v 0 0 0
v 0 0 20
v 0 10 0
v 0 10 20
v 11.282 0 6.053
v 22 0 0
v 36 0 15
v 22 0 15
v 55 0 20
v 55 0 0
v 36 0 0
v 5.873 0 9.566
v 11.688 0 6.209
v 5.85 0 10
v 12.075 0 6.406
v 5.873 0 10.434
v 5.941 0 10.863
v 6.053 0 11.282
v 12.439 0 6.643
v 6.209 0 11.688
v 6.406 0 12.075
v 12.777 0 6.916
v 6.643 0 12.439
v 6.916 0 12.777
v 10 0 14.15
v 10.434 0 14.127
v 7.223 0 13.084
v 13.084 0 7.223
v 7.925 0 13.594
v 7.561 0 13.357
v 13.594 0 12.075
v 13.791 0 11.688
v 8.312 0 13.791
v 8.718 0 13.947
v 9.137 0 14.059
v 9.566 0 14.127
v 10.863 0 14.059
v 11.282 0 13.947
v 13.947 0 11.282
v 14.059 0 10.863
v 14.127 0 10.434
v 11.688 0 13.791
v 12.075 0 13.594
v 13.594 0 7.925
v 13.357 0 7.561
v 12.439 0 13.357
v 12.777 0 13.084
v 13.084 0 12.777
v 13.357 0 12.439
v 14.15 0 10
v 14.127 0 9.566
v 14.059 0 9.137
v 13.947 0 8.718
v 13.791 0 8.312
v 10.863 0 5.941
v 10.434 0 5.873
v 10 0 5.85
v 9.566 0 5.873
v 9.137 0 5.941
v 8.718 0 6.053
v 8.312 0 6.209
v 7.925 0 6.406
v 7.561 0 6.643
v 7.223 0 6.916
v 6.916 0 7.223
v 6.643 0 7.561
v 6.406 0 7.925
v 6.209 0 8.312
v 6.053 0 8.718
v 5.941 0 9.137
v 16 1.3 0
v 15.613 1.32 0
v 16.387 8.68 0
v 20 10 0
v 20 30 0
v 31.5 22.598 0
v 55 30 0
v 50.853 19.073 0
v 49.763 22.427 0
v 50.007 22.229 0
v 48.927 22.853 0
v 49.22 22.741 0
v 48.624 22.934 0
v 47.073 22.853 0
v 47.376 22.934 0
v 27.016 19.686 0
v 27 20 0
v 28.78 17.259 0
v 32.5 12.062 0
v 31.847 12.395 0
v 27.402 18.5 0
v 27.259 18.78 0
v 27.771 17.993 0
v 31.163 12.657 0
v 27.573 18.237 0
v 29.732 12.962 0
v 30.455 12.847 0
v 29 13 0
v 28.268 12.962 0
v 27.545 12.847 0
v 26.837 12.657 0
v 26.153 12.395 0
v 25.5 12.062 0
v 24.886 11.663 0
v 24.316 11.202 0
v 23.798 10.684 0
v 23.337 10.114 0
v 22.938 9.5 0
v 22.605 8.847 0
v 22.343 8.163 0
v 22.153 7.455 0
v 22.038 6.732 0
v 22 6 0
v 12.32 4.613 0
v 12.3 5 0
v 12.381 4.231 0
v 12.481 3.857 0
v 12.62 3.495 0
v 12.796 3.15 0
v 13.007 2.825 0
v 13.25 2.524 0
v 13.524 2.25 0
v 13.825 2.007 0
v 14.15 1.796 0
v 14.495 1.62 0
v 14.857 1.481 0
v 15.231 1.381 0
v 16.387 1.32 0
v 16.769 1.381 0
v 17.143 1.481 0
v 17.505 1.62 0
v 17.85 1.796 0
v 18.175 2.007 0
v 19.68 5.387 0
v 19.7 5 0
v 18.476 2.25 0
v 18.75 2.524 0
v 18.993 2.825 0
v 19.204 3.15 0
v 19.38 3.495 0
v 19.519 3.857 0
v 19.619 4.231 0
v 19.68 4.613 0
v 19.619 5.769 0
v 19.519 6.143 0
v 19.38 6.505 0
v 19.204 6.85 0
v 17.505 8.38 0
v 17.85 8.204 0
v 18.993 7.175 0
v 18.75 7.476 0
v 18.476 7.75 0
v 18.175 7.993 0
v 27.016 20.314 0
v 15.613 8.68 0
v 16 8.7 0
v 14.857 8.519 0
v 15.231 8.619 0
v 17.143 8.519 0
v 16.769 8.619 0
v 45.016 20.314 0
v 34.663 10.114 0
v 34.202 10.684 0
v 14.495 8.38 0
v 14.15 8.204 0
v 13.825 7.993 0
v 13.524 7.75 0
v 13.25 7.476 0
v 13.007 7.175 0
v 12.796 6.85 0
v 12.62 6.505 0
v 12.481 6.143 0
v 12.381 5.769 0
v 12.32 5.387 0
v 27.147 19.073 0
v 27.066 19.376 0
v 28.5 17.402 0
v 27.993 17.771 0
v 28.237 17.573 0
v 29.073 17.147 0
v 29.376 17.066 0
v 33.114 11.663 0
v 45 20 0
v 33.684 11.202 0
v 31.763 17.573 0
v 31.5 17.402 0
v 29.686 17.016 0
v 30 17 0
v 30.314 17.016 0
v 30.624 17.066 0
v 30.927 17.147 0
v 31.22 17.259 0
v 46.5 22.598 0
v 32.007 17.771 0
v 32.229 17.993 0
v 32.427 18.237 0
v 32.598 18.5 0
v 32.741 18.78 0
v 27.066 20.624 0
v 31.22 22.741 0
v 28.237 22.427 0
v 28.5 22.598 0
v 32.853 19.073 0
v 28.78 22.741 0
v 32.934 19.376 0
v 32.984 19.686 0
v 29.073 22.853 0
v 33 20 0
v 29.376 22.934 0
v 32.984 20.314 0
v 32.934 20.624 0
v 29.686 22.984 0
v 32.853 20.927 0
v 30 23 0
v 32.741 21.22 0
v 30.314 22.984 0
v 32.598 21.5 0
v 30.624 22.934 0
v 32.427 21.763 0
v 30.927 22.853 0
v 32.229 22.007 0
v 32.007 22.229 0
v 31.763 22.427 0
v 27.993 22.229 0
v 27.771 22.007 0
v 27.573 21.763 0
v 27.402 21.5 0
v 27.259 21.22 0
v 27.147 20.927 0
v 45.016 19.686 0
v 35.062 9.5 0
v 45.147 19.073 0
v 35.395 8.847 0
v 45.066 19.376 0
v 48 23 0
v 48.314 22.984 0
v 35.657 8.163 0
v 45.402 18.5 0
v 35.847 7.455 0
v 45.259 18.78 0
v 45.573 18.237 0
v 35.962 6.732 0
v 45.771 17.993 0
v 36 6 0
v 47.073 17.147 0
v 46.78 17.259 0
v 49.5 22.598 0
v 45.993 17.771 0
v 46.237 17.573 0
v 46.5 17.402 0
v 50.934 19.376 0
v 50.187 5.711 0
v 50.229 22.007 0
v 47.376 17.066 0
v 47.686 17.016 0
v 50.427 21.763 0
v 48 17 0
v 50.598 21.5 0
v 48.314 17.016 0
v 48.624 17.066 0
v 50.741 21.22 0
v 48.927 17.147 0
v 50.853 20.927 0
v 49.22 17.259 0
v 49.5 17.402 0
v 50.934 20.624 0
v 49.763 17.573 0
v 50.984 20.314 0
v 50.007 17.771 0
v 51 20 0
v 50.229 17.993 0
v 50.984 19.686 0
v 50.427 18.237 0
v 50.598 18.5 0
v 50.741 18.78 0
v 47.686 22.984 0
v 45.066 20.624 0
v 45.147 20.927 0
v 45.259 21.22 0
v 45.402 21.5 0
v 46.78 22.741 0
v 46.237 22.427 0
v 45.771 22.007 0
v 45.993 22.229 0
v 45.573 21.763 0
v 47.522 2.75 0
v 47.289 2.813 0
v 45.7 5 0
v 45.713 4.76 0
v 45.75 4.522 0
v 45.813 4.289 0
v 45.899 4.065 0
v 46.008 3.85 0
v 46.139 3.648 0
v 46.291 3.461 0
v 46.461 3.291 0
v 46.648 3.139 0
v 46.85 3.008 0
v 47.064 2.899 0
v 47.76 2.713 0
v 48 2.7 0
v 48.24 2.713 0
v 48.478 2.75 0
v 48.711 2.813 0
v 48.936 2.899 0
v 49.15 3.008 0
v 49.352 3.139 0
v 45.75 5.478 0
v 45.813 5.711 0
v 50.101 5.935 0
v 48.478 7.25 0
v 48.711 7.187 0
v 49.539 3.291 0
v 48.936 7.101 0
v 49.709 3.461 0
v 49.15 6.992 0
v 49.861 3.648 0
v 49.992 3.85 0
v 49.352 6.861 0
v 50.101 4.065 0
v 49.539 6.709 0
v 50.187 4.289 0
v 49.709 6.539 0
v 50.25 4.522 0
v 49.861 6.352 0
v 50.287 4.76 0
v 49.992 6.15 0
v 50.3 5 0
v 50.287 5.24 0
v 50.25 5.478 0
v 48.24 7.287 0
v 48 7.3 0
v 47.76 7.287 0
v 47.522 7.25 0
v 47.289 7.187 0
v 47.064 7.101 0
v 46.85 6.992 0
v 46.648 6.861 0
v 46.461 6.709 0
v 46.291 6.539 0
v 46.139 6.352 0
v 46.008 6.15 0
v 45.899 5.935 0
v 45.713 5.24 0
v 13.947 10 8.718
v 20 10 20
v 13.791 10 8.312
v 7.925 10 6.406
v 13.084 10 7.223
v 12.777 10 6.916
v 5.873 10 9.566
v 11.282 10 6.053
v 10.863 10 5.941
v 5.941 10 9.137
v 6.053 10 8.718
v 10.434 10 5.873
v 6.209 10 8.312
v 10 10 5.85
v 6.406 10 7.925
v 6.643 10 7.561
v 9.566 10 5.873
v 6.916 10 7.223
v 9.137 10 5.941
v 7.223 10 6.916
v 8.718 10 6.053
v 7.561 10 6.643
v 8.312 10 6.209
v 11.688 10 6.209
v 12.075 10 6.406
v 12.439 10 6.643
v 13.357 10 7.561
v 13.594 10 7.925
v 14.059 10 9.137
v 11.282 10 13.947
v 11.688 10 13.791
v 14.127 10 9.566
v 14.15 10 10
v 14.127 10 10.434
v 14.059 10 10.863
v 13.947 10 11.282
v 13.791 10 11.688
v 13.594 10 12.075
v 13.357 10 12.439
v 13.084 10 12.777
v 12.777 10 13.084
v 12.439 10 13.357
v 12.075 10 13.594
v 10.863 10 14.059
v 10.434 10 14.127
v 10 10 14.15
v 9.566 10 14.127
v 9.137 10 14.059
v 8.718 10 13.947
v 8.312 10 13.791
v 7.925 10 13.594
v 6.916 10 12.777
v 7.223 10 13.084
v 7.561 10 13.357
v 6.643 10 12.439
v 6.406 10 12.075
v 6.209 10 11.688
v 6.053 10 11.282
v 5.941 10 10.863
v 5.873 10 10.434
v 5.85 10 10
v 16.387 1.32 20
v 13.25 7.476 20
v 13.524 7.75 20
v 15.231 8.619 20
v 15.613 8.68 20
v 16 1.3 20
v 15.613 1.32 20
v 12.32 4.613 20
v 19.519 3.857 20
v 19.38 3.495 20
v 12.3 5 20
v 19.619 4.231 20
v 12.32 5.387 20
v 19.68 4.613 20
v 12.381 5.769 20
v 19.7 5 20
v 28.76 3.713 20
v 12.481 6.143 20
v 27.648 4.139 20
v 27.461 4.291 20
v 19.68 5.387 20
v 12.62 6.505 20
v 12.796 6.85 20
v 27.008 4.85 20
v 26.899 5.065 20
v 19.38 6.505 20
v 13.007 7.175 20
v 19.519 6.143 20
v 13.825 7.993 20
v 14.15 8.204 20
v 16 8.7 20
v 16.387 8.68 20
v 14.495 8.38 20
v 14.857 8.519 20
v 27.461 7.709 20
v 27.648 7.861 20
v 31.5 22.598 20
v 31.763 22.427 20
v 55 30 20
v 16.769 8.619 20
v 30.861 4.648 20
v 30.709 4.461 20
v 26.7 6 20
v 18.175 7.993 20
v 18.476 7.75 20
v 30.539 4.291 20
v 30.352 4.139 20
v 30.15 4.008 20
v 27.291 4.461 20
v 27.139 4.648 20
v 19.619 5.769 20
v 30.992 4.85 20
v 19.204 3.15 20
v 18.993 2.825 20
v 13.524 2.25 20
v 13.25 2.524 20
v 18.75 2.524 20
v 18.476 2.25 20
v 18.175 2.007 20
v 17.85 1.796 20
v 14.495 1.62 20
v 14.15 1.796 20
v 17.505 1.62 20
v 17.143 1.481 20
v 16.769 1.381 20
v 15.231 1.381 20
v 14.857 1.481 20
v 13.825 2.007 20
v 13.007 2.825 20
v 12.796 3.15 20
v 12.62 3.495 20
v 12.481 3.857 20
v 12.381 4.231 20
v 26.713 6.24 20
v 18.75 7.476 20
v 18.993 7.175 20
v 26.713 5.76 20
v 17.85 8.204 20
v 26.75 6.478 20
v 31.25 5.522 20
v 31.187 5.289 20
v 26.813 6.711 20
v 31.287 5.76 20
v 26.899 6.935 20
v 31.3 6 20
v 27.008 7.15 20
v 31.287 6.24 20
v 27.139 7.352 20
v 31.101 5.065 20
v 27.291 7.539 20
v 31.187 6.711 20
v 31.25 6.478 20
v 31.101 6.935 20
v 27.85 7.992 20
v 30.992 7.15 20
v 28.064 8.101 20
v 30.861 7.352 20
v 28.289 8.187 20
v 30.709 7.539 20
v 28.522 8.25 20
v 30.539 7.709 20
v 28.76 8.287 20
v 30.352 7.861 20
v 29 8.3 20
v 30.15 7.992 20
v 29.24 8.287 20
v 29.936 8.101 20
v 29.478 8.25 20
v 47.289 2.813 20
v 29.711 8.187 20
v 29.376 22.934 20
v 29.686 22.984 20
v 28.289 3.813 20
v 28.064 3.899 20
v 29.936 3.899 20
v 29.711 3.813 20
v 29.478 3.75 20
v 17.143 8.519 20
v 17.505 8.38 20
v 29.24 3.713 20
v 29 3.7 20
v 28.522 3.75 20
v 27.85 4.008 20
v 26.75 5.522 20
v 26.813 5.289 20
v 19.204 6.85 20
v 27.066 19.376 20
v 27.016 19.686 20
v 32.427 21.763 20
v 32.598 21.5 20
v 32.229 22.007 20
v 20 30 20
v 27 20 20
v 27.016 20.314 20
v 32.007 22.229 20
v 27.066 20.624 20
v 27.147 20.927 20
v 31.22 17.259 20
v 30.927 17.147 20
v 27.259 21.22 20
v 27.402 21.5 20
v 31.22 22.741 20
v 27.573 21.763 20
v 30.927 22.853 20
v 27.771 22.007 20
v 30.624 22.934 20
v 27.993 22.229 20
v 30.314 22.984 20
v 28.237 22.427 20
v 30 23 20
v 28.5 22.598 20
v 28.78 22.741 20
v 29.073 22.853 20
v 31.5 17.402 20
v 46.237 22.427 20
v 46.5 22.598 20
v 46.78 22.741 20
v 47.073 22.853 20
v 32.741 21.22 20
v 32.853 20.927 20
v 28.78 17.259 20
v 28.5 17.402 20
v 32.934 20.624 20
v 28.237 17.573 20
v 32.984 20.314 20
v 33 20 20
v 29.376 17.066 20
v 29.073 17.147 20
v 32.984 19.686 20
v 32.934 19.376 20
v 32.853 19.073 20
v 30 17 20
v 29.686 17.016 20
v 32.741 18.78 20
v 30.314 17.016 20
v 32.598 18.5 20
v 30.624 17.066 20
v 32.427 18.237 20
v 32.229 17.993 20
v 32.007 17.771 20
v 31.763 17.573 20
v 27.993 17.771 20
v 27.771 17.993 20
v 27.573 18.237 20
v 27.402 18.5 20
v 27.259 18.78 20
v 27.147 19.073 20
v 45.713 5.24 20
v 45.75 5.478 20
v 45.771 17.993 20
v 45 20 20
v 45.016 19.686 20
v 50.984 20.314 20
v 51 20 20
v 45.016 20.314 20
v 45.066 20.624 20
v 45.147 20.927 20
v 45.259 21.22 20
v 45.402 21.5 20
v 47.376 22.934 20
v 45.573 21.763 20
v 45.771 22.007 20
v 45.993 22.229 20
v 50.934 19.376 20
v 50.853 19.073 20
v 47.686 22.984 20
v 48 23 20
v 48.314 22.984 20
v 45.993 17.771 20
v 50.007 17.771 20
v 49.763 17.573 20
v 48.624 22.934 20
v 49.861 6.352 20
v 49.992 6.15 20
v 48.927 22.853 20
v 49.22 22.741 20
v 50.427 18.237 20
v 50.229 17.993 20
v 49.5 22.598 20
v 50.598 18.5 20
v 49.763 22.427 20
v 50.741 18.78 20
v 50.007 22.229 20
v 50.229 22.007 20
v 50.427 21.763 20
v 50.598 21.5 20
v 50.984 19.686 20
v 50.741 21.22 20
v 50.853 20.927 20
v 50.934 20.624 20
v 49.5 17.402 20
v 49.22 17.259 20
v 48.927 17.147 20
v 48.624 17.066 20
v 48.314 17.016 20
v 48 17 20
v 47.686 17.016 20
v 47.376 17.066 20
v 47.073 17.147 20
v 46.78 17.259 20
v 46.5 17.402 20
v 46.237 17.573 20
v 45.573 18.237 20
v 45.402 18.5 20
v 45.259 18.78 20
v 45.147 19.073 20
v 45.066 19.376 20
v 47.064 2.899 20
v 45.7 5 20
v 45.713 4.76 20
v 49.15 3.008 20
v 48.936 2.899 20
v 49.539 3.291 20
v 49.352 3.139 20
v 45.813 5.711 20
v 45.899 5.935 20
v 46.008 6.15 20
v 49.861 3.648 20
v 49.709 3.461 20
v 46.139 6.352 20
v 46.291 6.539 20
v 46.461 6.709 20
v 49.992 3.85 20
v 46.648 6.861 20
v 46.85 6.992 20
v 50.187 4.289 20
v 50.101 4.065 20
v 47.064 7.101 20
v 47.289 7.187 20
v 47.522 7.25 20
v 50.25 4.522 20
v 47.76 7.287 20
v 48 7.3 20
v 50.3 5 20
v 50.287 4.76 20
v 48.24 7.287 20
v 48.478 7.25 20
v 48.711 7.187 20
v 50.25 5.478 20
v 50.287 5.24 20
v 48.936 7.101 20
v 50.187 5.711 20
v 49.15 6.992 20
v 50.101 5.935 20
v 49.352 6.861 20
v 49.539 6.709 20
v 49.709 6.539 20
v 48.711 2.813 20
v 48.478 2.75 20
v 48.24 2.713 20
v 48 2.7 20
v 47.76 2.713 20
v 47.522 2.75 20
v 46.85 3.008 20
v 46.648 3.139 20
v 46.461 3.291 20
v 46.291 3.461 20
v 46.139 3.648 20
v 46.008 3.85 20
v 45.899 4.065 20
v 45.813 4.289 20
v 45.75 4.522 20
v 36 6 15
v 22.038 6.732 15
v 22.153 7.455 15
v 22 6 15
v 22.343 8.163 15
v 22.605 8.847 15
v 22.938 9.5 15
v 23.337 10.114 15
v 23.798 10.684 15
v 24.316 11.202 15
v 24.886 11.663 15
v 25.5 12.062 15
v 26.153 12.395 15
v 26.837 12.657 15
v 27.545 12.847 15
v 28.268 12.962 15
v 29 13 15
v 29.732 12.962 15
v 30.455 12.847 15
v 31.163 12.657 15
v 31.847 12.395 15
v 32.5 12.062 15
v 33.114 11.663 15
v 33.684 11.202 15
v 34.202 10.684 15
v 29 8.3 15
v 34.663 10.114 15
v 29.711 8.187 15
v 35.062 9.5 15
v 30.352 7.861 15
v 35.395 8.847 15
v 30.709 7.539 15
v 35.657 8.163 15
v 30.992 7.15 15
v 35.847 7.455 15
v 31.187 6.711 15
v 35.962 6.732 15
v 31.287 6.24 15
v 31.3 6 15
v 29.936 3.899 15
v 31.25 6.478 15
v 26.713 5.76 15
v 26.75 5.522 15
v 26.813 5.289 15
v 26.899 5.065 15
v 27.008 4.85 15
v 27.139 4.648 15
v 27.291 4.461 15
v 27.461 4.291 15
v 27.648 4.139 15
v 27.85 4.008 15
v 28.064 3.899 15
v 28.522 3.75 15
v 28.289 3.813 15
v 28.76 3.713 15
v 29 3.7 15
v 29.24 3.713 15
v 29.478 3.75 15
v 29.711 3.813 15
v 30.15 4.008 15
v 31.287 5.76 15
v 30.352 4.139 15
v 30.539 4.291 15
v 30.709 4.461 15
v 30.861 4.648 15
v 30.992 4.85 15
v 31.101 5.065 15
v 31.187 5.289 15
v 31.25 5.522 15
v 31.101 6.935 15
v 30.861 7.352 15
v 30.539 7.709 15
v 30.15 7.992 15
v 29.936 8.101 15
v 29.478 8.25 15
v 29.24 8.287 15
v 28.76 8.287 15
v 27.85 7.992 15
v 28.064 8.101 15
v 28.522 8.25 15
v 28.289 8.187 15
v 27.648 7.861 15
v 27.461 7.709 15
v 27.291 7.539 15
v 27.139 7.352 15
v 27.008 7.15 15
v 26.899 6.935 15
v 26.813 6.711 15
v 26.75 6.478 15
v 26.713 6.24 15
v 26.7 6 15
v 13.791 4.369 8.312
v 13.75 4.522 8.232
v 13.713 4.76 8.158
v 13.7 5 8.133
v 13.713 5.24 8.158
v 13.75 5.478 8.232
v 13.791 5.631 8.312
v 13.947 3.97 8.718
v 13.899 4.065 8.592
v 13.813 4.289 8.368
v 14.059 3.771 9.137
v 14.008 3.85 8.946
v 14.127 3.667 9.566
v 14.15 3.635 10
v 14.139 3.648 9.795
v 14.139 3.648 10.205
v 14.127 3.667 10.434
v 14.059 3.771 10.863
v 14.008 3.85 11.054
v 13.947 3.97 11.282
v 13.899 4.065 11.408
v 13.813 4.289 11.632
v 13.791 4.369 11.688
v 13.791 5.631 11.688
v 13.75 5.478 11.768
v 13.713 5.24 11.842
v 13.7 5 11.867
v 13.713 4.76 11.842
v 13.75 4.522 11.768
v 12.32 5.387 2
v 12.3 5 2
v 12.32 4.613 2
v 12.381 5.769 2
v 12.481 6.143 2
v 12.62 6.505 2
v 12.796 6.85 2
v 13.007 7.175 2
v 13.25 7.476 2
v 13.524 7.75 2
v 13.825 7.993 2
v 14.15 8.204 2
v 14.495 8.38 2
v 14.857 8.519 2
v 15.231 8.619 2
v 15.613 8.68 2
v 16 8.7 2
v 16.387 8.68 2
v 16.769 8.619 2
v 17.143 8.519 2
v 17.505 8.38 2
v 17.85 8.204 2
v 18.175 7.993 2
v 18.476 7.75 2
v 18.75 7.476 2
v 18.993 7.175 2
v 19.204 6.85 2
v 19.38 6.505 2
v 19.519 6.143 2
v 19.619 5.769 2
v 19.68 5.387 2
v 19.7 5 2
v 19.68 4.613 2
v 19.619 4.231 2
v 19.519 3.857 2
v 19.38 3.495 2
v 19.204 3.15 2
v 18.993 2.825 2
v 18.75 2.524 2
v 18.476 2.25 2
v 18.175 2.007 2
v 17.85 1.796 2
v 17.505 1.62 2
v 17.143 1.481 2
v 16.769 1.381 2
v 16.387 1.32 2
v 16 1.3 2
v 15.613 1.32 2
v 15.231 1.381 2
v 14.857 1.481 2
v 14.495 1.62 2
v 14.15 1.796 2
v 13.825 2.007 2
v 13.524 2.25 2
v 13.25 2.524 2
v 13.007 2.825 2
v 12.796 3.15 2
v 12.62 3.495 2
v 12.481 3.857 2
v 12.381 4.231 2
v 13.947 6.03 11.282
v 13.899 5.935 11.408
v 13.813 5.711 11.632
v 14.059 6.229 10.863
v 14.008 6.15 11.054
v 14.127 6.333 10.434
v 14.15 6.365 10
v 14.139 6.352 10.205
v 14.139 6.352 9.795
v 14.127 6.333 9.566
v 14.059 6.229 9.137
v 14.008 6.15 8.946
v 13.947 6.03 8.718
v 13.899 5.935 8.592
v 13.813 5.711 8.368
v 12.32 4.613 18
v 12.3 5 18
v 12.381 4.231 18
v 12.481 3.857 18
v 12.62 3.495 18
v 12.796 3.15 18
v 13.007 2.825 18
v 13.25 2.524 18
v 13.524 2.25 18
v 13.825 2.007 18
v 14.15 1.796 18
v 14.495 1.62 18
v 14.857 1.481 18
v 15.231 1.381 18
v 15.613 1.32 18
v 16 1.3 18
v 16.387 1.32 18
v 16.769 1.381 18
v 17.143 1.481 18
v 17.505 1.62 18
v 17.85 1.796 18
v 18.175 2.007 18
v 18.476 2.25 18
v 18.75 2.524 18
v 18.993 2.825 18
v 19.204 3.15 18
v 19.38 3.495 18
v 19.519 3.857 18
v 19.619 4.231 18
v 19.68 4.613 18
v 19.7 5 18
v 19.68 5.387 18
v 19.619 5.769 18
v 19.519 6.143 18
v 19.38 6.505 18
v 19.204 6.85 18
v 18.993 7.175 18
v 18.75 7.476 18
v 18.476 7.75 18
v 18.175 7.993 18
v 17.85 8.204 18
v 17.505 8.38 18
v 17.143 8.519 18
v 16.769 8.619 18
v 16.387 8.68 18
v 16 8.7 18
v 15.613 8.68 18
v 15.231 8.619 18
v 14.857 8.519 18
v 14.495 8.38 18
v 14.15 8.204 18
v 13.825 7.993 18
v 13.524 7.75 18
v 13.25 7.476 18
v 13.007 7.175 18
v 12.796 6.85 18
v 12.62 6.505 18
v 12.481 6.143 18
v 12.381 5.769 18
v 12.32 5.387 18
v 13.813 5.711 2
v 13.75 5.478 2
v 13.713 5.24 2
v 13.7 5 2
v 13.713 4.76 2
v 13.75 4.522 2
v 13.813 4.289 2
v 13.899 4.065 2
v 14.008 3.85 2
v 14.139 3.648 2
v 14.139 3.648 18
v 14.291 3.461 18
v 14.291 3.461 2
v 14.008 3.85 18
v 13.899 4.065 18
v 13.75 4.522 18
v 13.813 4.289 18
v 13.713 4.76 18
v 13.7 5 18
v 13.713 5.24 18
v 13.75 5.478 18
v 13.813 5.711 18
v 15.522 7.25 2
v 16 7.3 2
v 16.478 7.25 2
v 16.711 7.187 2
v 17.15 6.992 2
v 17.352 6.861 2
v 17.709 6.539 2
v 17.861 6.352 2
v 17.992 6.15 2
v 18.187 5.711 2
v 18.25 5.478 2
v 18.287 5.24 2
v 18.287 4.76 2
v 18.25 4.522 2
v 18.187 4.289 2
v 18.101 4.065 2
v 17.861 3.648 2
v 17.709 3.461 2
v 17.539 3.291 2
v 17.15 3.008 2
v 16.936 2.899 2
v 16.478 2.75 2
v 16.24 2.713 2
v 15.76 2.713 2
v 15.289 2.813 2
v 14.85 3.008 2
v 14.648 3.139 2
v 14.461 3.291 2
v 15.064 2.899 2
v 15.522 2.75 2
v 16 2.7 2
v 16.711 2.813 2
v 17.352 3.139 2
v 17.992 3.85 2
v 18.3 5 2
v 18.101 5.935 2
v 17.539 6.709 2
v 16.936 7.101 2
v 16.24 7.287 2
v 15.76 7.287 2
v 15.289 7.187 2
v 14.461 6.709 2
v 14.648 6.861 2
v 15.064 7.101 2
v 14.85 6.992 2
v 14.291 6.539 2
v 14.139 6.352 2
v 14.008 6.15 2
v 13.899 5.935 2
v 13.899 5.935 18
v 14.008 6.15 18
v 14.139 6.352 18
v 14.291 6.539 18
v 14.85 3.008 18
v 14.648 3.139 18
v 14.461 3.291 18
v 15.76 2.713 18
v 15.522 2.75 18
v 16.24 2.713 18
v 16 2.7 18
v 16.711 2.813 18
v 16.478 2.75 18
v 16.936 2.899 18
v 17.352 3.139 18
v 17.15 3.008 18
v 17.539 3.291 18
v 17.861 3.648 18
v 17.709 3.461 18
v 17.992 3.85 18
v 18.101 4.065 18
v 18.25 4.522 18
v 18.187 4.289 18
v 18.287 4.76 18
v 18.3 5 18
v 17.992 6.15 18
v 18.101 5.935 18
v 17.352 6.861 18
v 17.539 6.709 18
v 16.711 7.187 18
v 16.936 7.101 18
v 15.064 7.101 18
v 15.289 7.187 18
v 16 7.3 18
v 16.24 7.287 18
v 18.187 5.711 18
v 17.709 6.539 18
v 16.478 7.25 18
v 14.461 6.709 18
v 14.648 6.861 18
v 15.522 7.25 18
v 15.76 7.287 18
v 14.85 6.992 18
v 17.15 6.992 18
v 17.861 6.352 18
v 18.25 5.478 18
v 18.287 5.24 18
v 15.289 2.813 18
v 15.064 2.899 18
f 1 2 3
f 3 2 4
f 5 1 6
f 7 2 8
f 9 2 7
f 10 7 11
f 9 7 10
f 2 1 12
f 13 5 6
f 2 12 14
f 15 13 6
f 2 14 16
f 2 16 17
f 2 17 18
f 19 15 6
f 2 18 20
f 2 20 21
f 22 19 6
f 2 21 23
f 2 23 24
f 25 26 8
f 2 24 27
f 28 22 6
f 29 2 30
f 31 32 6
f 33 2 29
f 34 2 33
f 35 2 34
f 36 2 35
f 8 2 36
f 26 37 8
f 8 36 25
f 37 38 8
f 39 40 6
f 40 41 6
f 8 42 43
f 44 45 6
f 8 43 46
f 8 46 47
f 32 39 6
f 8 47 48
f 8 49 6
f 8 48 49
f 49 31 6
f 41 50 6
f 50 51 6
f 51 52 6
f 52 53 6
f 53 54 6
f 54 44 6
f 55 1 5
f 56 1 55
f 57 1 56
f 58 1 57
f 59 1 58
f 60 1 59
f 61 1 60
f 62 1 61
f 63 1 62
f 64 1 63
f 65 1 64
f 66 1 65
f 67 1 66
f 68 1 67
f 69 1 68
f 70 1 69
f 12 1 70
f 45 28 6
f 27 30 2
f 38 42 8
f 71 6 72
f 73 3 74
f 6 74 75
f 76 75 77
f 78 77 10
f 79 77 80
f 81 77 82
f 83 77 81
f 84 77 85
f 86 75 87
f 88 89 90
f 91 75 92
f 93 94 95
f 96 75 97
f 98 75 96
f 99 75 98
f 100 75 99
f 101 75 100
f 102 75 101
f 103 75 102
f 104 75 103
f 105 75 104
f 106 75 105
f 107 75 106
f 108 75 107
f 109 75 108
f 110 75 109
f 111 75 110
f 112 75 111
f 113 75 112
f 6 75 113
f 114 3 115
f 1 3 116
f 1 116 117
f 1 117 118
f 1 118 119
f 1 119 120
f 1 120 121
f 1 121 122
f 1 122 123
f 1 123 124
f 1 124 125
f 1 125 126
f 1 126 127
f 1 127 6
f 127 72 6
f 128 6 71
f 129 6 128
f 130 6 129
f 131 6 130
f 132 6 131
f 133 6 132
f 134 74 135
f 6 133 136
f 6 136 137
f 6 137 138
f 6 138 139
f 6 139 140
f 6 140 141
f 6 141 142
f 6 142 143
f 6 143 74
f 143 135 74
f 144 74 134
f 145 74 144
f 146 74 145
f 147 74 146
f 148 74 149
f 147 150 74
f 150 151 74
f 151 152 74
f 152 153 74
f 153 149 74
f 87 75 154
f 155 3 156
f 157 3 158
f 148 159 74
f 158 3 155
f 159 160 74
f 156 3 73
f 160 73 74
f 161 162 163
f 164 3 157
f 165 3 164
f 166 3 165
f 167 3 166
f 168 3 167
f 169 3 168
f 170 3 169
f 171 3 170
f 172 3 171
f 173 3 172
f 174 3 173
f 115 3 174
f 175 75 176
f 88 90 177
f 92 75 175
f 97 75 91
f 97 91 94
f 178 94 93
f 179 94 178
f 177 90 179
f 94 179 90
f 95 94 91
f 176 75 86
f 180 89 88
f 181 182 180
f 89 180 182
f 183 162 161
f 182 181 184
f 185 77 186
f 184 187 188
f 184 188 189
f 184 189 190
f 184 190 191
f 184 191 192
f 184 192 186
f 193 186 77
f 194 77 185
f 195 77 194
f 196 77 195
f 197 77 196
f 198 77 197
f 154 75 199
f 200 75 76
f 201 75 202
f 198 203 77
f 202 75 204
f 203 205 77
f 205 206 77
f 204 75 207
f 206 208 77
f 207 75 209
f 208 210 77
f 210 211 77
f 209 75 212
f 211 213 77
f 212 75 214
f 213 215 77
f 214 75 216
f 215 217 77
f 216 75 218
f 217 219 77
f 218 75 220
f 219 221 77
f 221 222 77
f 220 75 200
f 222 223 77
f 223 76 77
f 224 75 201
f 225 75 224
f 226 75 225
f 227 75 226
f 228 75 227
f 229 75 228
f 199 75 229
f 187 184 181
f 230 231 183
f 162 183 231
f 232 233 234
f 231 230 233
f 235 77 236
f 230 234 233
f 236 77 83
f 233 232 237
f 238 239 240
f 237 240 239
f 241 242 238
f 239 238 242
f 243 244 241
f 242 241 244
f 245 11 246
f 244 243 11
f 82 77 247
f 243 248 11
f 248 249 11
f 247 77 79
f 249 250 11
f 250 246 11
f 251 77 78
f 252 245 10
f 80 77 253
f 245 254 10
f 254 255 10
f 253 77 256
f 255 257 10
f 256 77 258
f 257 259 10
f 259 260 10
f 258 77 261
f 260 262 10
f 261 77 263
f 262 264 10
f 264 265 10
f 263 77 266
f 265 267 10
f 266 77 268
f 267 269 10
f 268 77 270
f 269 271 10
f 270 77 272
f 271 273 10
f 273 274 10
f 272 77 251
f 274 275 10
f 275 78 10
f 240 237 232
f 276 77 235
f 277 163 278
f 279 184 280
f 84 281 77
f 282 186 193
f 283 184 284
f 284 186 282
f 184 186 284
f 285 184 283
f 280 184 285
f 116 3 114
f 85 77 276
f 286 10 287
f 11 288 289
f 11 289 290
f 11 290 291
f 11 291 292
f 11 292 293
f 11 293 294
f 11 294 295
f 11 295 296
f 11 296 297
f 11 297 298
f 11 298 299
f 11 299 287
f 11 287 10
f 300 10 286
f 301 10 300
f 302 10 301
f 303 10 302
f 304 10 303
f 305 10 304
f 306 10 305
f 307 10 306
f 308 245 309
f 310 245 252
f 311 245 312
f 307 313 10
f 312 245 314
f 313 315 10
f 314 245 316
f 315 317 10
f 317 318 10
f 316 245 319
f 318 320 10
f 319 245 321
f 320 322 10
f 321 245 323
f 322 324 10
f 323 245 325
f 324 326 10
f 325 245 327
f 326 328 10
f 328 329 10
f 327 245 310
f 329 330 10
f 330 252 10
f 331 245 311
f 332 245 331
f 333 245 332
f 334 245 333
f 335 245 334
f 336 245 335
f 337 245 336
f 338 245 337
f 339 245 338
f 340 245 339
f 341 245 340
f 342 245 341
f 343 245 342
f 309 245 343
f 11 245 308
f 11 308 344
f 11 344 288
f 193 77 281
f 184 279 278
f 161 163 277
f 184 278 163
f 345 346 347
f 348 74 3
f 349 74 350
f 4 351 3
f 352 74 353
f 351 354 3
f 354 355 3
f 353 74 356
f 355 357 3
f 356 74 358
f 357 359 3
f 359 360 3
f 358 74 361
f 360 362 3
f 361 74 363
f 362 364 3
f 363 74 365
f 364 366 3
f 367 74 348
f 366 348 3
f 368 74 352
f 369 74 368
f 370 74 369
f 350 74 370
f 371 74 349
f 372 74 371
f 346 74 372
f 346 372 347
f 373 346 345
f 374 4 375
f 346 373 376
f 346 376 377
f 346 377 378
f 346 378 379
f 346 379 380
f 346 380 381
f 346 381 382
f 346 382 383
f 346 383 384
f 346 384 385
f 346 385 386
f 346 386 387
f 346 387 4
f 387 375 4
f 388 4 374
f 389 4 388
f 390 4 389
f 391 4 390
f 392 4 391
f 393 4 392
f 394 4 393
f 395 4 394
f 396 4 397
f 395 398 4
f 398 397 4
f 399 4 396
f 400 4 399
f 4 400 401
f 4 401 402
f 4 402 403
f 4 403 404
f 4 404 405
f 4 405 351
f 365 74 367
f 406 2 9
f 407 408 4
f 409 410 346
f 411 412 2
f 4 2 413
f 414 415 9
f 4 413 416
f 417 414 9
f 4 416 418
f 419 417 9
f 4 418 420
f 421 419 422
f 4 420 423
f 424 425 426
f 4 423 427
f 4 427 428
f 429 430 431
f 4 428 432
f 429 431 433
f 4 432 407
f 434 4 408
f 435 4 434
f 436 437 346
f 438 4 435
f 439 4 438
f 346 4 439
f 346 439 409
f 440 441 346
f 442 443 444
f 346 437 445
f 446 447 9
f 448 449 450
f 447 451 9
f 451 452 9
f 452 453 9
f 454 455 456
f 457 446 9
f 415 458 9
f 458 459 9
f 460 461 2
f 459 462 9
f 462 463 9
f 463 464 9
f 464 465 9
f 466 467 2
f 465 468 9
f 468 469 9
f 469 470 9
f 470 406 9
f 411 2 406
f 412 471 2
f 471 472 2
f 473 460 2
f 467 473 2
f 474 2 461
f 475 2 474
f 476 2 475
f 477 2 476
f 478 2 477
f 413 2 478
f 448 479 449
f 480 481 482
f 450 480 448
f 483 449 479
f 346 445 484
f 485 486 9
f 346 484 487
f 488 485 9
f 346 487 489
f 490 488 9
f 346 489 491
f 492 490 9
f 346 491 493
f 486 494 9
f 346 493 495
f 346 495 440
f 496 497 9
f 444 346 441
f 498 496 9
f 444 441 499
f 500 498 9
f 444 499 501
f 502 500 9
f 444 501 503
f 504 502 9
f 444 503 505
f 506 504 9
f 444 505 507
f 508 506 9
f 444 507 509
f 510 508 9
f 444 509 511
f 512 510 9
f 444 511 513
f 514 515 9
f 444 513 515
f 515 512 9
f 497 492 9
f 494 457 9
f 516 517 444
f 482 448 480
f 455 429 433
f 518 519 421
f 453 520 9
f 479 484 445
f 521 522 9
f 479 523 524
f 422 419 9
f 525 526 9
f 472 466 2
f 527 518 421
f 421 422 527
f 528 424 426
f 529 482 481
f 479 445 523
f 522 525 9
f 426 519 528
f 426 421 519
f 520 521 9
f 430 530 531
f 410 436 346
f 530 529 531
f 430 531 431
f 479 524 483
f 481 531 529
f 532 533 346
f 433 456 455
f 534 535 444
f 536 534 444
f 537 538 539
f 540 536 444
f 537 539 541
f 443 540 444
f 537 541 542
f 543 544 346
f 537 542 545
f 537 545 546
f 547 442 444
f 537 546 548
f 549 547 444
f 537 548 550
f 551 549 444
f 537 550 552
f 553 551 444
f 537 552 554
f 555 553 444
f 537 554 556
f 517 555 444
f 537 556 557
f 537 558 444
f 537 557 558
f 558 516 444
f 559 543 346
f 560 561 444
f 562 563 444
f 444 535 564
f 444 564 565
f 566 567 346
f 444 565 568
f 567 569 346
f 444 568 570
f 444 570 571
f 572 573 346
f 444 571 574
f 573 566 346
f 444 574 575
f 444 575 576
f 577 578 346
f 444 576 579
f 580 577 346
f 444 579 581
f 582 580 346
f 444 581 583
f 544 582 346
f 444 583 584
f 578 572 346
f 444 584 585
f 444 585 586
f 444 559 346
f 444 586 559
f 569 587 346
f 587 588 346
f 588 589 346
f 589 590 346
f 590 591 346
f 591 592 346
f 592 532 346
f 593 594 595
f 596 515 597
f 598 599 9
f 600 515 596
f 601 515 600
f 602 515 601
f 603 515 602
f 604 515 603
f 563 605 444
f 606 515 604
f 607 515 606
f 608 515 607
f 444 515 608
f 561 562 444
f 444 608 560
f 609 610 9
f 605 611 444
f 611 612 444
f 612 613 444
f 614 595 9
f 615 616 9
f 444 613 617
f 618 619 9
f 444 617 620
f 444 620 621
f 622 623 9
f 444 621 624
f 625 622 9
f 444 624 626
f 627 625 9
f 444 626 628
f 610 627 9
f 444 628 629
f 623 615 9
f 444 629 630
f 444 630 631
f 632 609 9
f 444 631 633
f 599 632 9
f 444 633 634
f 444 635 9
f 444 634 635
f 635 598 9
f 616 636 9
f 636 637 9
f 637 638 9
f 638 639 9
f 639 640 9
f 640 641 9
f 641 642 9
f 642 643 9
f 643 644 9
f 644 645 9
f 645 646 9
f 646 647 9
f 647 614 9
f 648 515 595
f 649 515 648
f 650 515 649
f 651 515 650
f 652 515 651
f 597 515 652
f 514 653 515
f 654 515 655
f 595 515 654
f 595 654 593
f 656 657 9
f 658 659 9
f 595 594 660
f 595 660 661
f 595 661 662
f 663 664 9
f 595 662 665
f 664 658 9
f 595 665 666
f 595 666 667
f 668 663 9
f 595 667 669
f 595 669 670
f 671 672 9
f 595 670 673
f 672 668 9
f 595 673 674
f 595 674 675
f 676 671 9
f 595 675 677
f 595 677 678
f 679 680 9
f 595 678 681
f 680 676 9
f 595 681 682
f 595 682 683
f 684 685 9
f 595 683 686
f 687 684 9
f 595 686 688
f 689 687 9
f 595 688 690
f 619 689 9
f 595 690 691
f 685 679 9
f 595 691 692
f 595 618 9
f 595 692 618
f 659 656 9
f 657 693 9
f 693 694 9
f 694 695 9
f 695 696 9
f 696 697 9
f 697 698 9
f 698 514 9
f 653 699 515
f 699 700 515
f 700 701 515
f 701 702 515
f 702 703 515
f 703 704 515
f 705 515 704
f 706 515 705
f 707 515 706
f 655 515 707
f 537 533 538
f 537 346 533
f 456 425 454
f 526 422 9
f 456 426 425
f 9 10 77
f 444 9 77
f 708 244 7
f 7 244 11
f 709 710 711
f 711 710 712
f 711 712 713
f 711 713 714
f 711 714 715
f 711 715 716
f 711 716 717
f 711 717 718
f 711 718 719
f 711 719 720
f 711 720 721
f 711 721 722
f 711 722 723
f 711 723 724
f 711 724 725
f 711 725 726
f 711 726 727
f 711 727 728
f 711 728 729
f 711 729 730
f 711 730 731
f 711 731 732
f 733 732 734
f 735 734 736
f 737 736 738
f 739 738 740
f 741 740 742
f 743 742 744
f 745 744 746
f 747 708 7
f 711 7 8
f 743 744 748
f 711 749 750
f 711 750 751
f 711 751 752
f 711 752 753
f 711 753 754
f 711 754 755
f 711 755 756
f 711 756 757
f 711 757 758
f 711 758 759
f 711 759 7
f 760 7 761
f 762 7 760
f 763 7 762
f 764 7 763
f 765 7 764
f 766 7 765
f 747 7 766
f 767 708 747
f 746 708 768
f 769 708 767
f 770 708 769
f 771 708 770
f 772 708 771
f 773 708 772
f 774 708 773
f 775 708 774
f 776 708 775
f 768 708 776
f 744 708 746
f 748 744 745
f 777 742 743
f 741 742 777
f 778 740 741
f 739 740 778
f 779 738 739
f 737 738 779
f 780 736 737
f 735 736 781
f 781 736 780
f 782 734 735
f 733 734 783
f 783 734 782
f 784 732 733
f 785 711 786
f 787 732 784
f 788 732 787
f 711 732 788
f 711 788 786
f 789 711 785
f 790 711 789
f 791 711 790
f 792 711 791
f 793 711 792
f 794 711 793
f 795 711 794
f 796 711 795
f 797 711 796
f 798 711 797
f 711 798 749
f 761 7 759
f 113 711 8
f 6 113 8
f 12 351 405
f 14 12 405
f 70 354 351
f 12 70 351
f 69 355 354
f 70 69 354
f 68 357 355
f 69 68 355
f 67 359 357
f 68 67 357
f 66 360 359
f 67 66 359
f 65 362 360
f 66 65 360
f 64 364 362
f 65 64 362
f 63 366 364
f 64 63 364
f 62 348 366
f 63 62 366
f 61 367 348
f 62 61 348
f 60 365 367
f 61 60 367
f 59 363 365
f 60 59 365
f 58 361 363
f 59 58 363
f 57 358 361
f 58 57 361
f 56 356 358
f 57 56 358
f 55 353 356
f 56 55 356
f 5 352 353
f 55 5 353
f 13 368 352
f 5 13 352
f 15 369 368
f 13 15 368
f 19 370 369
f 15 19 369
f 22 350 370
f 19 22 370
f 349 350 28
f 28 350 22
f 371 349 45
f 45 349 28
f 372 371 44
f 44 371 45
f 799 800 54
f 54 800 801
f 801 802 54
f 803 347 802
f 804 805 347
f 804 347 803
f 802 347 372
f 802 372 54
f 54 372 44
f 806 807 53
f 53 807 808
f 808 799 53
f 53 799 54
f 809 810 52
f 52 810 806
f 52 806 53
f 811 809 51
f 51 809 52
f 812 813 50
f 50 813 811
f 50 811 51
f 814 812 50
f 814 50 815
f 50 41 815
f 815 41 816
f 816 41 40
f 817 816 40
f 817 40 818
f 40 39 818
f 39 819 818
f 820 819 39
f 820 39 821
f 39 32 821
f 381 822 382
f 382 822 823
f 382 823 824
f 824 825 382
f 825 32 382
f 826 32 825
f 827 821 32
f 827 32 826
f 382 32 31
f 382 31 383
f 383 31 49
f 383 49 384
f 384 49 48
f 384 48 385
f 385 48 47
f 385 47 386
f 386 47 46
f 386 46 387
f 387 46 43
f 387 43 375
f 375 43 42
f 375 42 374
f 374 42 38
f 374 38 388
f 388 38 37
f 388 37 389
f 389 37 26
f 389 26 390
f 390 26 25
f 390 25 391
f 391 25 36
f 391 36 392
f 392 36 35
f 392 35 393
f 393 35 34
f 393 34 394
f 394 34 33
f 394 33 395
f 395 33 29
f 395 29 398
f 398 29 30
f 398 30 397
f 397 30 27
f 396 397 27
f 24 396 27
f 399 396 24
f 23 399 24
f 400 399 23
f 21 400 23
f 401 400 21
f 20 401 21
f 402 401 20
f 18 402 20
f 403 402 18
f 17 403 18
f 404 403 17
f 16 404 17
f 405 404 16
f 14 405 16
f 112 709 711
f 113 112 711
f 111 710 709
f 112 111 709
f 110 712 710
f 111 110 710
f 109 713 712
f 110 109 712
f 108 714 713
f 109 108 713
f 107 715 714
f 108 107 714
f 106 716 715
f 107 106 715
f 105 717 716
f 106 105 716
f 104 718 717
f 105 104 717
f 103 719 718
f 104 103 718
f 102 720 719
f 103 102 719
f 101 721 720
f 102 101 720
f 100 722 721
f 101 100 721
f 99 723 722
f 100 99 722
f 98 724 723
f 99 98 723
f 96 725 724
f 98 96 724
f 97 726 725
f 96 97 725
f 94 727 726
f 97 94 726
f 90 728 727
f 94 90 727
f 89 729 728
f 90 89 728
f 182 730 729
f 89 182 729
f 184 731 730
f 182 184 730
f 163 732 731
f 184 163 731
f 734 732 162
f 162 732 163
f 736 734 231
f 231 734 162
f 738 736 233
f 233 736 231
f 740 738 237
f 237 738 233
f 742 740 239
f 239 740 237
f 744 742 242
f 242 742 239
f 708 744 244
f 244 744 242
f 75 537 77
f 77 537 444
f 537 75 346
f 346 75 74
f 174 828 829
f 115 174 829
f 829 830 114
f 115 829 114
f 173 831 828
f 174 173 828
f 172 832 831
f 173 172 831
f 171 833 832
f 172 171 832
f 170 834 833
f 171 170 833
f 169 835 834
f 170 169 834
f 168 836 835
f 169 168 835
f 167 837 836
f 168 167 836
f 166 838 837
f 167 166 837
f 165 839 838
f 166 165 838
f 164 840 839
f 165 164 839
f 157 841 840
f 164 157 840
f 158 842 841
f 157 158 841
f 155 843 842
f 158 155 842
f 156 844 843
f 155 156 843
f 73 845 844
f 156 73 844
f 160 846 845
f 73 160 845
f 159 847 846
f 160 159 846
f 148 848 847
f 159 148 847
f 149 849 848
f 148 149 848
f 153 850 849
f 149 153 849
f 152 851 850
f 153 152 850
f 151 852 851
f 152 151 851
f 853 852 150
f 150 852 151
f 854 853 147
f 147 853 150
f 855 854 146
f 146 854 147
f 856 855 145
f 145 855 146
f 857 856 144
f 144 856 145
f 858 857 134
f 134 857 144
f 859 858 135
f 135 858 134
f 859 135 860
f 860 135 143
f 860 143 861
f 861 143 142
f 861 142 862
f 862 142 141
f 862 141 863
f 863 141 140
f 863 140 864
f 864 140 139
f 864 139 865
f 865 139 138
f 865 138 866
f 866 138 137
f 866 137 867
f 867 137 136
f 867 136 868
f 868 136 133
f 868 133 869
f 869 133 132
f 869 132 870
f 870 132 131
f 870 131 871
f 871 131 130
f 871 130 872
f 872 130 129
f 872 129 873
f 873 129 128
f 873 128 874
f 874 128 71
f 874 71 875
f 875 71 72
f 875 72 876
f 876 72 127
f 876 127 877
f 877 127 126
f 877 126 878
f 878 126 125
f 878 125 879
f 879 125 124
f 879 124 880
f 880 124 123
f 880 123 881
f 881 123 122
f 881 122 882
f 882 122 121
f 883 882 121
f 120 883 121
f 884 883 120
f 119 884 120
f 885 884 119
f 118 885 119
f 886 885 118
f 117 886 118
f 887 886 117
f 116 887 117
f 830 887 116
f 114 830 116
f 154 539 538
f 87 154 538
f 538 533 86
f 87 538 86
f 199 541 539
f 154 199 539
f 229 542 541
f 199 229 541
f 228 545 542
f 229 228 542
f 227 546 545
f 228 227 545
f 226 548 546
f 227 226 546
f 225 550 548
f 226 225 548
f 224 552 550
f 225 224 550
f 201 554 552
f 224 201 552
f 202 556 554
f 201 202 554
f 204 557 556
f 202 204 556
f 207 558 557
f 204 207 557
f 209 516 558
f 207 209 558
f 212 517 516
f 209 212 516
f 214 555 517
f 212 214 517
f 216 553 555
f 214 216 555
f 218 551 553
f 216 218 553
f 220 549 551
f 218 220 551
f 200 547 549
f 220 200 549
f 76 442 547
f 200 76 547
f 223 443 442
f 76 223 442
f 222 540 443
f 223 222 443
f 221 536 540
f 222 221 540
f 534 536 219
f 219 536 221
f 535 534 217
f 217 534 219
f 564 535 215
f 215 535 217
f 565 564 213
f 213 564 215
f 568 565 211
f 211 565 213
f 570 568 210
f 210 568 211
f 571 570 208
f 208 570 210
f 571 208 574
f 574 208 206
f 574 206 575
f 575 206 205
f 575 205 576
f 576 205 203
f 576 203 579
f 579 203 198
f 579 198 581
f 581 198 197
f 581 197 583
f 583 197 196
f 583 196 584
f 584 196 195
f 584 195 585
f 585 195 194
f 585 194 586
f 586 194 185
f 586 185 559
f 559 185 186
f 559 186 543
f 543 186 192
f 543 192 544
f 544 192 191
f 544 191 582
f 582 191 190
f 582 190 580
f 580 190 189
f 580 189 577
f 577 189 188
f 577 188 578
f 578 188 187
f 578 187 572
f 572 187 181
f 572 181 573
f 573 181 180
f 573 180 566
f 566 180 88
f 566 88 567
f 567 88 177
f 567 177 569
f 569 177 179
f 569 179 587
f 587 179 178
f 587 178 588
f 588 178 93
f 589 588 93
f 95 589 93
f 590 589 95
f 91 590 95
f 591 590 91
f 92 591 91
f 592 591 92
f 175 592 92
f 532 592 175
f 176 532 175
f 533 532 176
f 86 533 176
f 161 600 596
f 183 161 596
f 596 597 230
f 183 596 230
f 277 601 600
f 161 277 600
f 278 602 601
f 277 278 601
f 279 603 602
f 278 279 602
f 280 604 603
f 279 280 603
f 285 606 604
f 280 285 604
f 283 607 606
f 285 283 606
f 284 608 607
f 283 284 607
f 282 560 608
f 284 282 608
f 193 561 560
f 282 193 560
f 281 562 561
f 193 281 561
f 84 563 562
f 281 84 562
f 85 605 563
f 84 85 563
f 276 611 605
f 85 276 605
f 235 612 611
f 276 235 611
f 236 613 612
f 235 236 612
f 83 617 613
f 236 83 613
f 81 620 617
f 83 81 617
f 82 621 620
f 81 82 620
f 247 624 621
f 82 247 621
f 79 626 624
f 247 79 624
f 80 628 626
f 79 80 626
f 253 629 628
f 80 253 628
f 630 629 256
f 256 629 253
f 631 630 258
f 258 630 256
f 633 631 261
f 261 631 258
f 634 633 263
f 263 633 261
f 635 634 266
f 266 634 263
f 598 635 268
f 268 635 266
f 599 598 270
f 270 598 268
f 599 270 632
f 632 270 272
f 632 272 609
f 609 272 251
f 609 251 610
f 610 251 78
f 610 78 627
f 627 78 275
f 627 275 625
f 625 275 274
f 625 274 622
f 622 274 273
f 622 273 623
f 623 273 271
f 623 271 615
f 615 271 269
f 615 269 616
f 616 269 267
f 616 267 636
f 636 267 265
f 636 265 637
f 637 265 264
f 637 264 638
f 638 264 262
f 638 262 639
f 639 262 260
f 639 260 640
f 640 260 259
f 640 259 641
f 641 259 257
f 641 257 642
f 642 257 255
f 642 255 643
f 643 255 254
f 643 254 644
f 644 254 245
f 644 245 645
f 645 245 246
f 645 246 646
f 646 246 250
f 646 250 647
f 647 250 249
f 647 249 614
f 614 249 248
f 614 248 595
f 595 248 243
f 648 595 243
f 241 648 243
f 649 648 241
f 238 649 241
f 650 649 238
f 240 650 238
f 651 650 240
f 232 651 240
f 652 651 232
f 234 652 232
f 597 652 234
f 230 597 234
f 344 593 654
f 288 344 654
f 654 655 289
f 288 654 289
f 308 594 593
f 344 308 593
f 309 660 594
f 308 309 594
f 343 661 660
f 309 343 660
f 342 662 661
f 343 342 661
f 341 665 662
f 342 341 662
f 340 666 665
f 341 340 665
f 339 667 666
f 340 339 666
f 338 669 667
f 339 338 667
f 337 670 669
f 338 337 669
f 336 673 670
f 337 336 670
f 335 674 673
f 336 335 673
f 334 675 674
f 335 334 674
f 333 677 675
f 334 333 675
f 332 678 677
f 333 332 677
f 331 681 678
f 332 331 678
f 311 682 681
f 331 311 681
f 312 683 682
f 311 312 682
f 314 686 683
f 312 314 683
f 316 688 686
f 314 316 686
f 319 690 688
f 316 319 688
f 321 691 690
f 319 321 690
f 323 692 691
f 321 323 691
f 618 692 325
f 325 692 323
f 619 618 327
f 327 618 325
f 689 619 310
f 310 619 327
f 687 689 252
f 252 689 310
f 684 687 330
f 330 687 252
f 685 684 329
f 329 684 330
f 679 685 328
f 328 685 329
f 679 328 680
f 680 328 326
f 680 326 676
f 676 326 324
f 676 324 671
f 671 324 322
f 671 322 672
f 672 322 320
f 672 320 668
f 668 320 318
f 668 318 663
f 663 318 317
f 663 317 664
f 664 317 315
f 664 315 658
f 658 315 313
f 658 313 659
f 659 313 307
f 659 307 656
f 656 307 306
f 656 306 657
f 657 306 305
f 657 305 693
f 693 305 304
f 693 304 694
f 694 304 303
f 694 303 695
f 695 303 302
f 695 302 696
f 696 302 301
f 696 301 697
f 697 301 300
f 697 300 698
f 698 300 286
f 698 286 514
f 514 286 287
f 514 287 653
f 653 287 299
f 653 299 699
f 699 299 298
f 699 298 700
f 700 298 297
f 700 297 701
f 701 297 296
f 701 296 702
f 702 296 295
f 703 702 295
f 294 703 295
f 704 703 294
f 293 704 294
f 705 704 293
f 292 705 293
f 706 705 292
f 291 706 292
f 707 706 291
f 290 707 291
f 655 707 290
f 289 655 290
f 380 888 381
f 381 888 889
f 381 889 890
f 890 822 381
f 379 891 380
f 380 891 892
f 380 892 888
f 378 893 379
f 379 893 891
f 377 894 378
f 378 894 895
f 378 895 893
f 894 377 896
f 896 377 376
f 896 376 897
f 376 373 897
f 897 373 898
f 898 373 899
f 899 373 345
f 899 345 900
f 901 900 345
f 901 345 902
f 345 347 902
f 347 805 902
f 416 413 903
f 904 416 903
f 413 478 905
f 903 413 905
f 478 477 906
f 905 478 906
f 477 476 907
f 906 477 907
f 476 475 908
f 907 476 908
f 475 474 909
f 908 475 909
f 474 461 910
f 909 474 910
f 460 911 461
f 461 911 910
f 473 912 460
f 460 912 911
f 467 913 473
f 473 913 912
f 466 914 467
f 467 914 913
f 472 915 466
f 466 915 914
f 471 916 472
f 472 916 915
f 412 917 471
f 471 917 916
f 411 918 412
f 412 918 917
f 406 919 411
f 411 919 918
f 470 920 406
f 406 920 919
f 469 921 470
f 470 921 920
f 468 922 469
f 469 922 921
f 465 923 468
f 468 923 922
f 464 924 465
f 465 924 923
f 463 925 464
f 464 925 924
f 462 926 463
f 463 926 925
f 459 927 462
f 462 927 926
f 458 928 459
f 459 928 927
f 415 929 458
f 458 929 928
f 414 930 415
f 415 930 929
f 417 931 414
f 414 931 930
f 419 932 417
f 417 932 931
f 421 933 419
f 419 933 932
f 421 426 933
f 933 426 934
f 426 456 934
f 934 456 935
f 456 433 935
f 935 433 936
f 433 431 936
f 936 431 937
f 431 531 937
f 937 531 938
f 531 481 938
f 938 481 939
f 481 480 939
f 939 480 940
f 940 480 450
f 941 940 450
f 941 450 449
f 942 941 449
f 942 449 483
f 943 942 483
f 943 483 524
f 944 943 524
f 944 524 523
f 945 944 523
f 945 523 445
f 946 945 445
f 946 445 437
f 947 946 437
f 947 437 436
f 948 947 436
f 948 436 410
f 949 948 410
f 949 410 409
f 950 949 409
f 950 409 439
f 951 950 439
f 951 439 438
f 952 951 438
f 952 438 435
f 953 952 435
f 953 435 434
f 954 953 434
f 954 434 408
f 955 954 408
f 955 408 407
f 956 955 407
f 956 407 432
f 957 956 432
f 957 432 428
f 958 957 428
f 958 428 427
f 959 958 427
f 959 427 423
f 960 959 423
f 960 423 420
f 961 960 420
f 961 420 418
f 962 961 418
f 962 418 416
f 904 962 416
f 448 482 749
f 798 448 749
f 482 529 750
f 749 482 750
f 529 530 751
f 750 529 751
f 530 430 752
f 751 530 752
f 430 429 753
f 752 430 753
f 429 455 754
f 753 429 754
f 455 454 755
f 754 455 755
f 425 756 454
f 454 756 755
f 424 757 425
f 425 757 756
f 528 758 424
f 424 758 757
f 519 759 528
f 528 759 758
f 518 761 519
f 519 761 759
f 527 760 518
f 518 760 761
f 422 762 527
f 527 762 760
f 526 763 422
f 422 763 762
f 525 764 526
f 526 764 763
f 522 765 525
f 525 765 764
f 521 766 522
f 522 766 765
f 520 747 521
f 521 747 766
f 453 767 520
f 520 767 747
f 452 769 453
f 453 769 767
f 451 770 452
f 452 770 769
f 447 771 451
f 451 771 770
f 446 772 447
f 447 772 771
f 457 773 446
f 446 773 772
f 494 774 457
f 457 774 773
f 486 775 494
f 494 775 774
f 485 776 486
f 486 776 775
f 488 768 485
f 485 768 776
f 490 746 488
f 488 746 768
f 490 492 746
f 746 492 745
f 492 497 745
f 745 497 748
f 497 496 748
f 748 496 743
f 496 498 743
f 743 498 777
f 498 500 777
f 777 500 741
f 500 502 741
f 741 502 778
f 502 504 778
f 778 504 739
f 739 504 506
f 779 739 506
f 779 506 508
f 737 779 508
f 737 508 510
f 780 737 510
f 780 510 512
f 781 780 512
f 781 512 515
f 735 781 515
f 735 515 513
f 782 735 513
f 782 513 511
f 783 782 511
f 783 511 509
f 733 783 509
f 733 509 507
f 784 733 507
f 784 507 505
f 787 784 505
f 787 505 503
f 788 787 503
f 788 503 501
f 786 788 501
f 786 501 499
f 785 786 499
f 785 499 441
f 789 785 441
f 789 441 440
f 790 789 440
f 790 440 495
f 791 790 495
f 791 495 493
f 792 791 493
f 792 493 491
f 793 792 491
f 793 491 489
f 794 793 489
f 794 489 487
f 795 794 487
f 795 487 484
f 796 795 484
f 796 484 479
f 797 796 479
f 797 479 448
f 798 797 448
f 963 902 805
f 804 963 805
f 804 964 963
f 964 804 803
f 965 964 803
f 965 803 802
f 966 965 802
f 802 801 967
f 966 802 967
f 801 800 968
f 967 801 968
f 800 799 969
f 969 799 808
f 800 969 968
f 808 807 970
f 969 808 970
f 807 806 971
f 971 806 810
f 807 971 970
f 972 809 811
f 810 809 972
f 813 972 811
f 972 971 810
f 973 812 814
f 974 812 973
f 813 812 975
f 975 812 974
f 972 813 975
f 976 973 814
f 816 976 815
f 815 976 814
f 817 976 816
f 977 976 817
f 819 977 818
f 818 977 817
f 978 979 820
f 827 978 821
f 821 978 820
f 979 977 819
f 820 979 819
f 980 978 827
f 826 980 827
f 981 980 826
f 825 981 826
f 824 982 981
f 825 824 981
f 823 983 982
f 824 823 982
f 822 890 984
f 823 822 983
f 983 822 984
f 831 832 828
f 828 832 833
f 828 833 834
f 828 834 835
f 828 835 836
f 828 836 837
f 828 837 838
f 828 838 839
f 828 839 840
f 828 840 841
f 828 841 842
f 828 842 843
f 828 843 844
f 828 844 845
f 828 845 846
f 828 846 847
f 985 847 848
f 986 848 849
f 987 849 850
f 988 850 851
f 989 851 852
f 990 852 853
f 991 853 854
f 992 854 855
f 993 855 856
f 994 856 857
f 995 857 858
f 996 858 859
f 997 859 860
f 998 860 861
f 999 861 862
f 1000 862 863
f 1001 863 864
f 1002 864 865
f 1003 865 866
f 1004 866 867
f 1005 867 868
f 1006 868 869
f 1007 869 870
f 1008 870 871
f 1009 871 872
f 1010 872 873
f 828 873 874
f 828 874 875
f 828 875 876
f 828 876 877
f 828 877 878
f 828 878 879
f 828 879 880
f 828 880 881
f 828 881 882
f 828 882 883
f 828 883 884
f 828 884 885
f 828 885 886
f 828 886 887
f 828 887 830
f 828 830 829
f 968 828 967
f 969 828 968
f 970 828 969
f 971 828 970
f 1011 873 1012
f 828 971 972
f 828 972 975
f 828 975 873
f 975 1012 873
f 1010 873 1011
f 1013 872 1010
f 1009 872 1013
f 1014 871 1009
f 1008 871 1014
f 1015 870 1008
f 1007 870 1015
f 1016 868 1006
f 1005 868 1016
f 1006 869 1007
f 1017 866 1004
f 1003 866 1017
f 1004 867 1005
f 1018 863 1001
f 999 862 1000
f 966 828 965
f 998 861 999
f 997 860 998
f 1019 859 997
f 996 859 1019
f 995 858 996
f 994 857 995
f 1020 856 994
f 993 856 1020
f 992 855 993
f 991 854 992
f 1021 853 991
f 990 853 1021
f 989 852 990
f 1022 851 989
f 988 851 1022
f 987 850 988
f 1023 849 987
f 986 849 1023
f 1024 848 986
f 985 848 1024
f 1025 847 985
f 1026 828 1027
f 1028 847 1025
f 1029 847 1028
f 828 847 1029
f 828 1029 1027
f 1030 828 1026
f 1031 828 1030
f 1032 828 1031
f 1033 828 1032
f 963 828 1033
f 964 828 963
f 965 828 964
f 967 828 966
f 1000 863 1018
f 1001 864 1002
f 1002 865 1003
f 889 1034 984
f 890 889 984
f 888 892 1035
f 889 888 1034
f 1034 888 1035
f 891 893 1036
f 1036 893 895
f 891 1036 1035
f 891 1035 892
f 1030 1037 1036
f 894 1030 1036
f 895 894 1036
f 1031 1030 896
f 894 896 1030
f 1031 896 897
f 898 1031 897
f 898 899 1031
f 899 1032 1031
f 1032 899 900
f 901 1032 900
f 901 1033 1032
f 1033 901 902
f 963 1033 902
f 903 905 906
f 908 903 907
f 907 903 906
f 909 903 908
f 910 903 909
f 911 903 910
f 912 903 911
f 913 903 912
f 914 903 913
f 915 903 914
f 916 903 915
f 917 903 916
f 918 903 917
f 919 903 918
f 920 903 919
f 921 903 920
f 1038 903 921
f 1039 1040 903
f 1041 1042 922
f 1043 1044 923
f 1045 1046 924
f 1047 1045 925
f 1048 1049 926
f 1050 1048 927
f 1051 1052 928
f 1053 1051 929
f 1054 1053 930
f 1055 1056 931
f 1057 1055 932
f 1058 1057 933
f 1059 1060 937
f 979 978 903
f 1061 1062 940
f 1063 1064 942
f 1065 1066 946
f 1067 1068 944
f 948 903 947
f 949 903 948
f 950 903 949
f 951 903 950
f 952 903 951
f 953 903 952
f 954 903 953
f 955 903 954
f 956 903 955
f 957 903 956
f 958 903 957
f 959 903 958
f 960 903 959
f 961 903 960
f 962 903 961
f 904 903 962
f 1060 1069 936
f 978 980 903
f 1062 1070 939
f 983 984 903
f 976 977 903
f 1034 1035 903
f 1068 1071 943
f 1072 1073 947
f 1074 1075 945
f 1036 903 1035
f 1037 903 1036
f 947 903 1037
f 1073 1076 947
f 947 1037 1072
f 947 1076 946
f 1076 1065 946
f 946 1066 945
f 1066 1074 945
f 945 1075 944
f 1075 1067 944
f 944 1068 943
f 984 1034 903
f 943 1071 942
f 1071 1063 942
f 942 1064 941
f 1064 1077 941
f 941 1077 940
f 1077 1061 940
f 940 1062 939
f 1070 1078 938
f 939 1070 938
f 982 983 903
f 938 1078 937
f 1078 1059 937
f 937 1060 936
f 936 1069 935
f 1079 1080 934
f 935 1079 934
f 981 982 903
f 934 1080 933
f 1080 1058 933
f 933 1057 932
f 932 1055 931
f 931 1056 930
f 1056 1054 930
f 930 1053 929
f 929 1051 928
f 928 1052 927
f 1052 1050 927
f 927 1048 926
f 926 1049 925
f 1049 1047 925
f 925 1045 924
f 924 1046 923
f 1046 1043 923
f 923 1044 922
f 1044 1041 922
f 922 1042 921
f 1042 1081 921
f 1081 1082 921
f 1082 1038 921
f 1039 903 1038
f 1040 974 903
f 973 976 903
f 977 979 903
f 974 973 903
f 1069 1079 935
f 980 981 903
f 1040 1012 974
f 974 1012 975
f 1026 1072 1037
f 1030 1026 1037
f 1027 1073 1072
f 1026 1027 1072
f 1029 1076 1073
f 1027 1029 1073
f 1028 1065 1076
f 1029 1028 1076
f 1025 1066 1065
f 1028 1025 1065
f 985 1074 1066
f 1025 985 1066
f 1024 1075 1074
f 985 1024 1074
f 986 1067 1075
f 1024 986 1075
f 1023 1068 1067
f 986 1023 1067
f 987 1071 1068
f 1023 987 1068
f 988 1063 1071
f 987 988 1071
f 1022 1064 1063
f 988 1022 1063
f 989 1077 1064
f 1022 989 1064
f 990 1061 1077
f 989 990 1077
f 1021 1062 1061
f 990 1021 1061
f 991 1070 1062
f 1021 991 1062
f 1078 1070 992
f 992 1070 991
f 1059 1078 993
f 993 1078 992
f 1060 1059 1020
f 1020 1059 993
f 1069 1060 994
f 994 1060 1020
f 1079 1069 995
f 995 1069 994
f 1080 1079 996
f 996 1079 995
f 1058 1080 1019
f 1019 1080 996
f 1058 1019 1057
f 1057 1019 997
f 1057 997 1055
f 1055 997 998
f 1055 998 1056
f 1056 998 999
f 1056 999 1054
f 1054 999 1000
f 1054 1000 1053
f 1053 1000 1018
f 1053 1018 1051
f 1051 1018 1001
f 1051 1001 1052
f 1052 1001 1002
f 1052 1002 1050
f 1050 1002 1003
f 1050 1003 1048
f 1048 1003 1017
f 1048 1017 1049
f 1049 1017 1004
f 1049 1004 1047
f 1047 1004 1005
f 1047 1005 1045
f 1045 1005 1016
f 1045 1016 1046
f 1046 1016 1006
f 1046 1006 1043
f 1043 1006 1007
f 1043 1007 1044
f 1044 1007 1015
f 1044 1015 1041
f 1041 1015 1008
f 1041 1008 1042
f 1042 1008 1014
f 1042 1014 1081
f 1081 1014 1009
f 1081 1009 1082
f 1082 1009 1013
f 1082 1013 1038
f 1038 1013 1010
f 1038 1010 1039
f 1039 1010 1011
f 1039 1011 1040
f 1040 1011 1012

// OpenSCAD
h1 = 20;		// Height body
h2 = 5;		// Height base
h3 = h1+2;	// Height cylinders
r1 = 4.15;		// Radio varilla lisa
r2 = 2.3;		// Radio tornillo M3
r3 = 11.2;	// Radio centro motor
r4 = 3;		// Radio tornillo M5
r5 = 7.6;		// Radio rodamiento lineal
r6 = 4.62;	// Radio tuerca M5
r7 = 2.3;		// Radio poleas
r8 = 3.7;		// Radio cabeza tornillo M3
L1 = 15;		// Longitud varilla lisa 8mm

module idler_hbot_mirror()
{
		union() {
			difference() {
				//Cuerpo principal
				cube([55, 30, h1]);
				
				//Hueco Perfil vertical
				translate([0, 10, 0]) cube([20, 20, h1]);
				
				//Hueco varilla lisa
				translate([10, L1, (h1 - 10)]) rotate(([90, 0, 0])) cylinder(h = (L1 + 1), r = r1, $fn=60);
				
				translate([22, 0, -h2]) cube([14, 6, h1]);
				
				
				// Tornillos acople perfiles
				//translate([10, 30, -1])	cylinder(h = h3, r = r4, $fn=60);
				translate([10, 20, -1])	cylinder(h = h3, r = r4, $fn=60);
				
				translate([30, 20, -1])	cylinder(h = h3, r = r4, $fn=60);
				translate([48, 20, -1])	cylinder(h = h3, r = r4, $fn=60);
				translate([48, 5, -1])	cylinder(h = h3, r = r2, $fn=60);

				// Hueco tornillo polea
				translate([29, 6, -1]) cylinder(h = h3, r = r7, $fn=60);
				translate([29, 6, -h2]) cylinder(h = h1, r = 7, $fn=60);

				translate([16, 5, -1]) cylinder(h = h3, r = r2, $fn=60);
				translate([16, 5, 0]) cylinder(h = 2, r = r8, $fn=60);
				translate([16, 5, (h1 - 2)]) cylinder(h = 2, r = r8, $fn=60);
			}
			//translate([20, 25, h2]) cube([10, 5,(h1-h2)]);

		}
}


idler_hbot_mirror();
